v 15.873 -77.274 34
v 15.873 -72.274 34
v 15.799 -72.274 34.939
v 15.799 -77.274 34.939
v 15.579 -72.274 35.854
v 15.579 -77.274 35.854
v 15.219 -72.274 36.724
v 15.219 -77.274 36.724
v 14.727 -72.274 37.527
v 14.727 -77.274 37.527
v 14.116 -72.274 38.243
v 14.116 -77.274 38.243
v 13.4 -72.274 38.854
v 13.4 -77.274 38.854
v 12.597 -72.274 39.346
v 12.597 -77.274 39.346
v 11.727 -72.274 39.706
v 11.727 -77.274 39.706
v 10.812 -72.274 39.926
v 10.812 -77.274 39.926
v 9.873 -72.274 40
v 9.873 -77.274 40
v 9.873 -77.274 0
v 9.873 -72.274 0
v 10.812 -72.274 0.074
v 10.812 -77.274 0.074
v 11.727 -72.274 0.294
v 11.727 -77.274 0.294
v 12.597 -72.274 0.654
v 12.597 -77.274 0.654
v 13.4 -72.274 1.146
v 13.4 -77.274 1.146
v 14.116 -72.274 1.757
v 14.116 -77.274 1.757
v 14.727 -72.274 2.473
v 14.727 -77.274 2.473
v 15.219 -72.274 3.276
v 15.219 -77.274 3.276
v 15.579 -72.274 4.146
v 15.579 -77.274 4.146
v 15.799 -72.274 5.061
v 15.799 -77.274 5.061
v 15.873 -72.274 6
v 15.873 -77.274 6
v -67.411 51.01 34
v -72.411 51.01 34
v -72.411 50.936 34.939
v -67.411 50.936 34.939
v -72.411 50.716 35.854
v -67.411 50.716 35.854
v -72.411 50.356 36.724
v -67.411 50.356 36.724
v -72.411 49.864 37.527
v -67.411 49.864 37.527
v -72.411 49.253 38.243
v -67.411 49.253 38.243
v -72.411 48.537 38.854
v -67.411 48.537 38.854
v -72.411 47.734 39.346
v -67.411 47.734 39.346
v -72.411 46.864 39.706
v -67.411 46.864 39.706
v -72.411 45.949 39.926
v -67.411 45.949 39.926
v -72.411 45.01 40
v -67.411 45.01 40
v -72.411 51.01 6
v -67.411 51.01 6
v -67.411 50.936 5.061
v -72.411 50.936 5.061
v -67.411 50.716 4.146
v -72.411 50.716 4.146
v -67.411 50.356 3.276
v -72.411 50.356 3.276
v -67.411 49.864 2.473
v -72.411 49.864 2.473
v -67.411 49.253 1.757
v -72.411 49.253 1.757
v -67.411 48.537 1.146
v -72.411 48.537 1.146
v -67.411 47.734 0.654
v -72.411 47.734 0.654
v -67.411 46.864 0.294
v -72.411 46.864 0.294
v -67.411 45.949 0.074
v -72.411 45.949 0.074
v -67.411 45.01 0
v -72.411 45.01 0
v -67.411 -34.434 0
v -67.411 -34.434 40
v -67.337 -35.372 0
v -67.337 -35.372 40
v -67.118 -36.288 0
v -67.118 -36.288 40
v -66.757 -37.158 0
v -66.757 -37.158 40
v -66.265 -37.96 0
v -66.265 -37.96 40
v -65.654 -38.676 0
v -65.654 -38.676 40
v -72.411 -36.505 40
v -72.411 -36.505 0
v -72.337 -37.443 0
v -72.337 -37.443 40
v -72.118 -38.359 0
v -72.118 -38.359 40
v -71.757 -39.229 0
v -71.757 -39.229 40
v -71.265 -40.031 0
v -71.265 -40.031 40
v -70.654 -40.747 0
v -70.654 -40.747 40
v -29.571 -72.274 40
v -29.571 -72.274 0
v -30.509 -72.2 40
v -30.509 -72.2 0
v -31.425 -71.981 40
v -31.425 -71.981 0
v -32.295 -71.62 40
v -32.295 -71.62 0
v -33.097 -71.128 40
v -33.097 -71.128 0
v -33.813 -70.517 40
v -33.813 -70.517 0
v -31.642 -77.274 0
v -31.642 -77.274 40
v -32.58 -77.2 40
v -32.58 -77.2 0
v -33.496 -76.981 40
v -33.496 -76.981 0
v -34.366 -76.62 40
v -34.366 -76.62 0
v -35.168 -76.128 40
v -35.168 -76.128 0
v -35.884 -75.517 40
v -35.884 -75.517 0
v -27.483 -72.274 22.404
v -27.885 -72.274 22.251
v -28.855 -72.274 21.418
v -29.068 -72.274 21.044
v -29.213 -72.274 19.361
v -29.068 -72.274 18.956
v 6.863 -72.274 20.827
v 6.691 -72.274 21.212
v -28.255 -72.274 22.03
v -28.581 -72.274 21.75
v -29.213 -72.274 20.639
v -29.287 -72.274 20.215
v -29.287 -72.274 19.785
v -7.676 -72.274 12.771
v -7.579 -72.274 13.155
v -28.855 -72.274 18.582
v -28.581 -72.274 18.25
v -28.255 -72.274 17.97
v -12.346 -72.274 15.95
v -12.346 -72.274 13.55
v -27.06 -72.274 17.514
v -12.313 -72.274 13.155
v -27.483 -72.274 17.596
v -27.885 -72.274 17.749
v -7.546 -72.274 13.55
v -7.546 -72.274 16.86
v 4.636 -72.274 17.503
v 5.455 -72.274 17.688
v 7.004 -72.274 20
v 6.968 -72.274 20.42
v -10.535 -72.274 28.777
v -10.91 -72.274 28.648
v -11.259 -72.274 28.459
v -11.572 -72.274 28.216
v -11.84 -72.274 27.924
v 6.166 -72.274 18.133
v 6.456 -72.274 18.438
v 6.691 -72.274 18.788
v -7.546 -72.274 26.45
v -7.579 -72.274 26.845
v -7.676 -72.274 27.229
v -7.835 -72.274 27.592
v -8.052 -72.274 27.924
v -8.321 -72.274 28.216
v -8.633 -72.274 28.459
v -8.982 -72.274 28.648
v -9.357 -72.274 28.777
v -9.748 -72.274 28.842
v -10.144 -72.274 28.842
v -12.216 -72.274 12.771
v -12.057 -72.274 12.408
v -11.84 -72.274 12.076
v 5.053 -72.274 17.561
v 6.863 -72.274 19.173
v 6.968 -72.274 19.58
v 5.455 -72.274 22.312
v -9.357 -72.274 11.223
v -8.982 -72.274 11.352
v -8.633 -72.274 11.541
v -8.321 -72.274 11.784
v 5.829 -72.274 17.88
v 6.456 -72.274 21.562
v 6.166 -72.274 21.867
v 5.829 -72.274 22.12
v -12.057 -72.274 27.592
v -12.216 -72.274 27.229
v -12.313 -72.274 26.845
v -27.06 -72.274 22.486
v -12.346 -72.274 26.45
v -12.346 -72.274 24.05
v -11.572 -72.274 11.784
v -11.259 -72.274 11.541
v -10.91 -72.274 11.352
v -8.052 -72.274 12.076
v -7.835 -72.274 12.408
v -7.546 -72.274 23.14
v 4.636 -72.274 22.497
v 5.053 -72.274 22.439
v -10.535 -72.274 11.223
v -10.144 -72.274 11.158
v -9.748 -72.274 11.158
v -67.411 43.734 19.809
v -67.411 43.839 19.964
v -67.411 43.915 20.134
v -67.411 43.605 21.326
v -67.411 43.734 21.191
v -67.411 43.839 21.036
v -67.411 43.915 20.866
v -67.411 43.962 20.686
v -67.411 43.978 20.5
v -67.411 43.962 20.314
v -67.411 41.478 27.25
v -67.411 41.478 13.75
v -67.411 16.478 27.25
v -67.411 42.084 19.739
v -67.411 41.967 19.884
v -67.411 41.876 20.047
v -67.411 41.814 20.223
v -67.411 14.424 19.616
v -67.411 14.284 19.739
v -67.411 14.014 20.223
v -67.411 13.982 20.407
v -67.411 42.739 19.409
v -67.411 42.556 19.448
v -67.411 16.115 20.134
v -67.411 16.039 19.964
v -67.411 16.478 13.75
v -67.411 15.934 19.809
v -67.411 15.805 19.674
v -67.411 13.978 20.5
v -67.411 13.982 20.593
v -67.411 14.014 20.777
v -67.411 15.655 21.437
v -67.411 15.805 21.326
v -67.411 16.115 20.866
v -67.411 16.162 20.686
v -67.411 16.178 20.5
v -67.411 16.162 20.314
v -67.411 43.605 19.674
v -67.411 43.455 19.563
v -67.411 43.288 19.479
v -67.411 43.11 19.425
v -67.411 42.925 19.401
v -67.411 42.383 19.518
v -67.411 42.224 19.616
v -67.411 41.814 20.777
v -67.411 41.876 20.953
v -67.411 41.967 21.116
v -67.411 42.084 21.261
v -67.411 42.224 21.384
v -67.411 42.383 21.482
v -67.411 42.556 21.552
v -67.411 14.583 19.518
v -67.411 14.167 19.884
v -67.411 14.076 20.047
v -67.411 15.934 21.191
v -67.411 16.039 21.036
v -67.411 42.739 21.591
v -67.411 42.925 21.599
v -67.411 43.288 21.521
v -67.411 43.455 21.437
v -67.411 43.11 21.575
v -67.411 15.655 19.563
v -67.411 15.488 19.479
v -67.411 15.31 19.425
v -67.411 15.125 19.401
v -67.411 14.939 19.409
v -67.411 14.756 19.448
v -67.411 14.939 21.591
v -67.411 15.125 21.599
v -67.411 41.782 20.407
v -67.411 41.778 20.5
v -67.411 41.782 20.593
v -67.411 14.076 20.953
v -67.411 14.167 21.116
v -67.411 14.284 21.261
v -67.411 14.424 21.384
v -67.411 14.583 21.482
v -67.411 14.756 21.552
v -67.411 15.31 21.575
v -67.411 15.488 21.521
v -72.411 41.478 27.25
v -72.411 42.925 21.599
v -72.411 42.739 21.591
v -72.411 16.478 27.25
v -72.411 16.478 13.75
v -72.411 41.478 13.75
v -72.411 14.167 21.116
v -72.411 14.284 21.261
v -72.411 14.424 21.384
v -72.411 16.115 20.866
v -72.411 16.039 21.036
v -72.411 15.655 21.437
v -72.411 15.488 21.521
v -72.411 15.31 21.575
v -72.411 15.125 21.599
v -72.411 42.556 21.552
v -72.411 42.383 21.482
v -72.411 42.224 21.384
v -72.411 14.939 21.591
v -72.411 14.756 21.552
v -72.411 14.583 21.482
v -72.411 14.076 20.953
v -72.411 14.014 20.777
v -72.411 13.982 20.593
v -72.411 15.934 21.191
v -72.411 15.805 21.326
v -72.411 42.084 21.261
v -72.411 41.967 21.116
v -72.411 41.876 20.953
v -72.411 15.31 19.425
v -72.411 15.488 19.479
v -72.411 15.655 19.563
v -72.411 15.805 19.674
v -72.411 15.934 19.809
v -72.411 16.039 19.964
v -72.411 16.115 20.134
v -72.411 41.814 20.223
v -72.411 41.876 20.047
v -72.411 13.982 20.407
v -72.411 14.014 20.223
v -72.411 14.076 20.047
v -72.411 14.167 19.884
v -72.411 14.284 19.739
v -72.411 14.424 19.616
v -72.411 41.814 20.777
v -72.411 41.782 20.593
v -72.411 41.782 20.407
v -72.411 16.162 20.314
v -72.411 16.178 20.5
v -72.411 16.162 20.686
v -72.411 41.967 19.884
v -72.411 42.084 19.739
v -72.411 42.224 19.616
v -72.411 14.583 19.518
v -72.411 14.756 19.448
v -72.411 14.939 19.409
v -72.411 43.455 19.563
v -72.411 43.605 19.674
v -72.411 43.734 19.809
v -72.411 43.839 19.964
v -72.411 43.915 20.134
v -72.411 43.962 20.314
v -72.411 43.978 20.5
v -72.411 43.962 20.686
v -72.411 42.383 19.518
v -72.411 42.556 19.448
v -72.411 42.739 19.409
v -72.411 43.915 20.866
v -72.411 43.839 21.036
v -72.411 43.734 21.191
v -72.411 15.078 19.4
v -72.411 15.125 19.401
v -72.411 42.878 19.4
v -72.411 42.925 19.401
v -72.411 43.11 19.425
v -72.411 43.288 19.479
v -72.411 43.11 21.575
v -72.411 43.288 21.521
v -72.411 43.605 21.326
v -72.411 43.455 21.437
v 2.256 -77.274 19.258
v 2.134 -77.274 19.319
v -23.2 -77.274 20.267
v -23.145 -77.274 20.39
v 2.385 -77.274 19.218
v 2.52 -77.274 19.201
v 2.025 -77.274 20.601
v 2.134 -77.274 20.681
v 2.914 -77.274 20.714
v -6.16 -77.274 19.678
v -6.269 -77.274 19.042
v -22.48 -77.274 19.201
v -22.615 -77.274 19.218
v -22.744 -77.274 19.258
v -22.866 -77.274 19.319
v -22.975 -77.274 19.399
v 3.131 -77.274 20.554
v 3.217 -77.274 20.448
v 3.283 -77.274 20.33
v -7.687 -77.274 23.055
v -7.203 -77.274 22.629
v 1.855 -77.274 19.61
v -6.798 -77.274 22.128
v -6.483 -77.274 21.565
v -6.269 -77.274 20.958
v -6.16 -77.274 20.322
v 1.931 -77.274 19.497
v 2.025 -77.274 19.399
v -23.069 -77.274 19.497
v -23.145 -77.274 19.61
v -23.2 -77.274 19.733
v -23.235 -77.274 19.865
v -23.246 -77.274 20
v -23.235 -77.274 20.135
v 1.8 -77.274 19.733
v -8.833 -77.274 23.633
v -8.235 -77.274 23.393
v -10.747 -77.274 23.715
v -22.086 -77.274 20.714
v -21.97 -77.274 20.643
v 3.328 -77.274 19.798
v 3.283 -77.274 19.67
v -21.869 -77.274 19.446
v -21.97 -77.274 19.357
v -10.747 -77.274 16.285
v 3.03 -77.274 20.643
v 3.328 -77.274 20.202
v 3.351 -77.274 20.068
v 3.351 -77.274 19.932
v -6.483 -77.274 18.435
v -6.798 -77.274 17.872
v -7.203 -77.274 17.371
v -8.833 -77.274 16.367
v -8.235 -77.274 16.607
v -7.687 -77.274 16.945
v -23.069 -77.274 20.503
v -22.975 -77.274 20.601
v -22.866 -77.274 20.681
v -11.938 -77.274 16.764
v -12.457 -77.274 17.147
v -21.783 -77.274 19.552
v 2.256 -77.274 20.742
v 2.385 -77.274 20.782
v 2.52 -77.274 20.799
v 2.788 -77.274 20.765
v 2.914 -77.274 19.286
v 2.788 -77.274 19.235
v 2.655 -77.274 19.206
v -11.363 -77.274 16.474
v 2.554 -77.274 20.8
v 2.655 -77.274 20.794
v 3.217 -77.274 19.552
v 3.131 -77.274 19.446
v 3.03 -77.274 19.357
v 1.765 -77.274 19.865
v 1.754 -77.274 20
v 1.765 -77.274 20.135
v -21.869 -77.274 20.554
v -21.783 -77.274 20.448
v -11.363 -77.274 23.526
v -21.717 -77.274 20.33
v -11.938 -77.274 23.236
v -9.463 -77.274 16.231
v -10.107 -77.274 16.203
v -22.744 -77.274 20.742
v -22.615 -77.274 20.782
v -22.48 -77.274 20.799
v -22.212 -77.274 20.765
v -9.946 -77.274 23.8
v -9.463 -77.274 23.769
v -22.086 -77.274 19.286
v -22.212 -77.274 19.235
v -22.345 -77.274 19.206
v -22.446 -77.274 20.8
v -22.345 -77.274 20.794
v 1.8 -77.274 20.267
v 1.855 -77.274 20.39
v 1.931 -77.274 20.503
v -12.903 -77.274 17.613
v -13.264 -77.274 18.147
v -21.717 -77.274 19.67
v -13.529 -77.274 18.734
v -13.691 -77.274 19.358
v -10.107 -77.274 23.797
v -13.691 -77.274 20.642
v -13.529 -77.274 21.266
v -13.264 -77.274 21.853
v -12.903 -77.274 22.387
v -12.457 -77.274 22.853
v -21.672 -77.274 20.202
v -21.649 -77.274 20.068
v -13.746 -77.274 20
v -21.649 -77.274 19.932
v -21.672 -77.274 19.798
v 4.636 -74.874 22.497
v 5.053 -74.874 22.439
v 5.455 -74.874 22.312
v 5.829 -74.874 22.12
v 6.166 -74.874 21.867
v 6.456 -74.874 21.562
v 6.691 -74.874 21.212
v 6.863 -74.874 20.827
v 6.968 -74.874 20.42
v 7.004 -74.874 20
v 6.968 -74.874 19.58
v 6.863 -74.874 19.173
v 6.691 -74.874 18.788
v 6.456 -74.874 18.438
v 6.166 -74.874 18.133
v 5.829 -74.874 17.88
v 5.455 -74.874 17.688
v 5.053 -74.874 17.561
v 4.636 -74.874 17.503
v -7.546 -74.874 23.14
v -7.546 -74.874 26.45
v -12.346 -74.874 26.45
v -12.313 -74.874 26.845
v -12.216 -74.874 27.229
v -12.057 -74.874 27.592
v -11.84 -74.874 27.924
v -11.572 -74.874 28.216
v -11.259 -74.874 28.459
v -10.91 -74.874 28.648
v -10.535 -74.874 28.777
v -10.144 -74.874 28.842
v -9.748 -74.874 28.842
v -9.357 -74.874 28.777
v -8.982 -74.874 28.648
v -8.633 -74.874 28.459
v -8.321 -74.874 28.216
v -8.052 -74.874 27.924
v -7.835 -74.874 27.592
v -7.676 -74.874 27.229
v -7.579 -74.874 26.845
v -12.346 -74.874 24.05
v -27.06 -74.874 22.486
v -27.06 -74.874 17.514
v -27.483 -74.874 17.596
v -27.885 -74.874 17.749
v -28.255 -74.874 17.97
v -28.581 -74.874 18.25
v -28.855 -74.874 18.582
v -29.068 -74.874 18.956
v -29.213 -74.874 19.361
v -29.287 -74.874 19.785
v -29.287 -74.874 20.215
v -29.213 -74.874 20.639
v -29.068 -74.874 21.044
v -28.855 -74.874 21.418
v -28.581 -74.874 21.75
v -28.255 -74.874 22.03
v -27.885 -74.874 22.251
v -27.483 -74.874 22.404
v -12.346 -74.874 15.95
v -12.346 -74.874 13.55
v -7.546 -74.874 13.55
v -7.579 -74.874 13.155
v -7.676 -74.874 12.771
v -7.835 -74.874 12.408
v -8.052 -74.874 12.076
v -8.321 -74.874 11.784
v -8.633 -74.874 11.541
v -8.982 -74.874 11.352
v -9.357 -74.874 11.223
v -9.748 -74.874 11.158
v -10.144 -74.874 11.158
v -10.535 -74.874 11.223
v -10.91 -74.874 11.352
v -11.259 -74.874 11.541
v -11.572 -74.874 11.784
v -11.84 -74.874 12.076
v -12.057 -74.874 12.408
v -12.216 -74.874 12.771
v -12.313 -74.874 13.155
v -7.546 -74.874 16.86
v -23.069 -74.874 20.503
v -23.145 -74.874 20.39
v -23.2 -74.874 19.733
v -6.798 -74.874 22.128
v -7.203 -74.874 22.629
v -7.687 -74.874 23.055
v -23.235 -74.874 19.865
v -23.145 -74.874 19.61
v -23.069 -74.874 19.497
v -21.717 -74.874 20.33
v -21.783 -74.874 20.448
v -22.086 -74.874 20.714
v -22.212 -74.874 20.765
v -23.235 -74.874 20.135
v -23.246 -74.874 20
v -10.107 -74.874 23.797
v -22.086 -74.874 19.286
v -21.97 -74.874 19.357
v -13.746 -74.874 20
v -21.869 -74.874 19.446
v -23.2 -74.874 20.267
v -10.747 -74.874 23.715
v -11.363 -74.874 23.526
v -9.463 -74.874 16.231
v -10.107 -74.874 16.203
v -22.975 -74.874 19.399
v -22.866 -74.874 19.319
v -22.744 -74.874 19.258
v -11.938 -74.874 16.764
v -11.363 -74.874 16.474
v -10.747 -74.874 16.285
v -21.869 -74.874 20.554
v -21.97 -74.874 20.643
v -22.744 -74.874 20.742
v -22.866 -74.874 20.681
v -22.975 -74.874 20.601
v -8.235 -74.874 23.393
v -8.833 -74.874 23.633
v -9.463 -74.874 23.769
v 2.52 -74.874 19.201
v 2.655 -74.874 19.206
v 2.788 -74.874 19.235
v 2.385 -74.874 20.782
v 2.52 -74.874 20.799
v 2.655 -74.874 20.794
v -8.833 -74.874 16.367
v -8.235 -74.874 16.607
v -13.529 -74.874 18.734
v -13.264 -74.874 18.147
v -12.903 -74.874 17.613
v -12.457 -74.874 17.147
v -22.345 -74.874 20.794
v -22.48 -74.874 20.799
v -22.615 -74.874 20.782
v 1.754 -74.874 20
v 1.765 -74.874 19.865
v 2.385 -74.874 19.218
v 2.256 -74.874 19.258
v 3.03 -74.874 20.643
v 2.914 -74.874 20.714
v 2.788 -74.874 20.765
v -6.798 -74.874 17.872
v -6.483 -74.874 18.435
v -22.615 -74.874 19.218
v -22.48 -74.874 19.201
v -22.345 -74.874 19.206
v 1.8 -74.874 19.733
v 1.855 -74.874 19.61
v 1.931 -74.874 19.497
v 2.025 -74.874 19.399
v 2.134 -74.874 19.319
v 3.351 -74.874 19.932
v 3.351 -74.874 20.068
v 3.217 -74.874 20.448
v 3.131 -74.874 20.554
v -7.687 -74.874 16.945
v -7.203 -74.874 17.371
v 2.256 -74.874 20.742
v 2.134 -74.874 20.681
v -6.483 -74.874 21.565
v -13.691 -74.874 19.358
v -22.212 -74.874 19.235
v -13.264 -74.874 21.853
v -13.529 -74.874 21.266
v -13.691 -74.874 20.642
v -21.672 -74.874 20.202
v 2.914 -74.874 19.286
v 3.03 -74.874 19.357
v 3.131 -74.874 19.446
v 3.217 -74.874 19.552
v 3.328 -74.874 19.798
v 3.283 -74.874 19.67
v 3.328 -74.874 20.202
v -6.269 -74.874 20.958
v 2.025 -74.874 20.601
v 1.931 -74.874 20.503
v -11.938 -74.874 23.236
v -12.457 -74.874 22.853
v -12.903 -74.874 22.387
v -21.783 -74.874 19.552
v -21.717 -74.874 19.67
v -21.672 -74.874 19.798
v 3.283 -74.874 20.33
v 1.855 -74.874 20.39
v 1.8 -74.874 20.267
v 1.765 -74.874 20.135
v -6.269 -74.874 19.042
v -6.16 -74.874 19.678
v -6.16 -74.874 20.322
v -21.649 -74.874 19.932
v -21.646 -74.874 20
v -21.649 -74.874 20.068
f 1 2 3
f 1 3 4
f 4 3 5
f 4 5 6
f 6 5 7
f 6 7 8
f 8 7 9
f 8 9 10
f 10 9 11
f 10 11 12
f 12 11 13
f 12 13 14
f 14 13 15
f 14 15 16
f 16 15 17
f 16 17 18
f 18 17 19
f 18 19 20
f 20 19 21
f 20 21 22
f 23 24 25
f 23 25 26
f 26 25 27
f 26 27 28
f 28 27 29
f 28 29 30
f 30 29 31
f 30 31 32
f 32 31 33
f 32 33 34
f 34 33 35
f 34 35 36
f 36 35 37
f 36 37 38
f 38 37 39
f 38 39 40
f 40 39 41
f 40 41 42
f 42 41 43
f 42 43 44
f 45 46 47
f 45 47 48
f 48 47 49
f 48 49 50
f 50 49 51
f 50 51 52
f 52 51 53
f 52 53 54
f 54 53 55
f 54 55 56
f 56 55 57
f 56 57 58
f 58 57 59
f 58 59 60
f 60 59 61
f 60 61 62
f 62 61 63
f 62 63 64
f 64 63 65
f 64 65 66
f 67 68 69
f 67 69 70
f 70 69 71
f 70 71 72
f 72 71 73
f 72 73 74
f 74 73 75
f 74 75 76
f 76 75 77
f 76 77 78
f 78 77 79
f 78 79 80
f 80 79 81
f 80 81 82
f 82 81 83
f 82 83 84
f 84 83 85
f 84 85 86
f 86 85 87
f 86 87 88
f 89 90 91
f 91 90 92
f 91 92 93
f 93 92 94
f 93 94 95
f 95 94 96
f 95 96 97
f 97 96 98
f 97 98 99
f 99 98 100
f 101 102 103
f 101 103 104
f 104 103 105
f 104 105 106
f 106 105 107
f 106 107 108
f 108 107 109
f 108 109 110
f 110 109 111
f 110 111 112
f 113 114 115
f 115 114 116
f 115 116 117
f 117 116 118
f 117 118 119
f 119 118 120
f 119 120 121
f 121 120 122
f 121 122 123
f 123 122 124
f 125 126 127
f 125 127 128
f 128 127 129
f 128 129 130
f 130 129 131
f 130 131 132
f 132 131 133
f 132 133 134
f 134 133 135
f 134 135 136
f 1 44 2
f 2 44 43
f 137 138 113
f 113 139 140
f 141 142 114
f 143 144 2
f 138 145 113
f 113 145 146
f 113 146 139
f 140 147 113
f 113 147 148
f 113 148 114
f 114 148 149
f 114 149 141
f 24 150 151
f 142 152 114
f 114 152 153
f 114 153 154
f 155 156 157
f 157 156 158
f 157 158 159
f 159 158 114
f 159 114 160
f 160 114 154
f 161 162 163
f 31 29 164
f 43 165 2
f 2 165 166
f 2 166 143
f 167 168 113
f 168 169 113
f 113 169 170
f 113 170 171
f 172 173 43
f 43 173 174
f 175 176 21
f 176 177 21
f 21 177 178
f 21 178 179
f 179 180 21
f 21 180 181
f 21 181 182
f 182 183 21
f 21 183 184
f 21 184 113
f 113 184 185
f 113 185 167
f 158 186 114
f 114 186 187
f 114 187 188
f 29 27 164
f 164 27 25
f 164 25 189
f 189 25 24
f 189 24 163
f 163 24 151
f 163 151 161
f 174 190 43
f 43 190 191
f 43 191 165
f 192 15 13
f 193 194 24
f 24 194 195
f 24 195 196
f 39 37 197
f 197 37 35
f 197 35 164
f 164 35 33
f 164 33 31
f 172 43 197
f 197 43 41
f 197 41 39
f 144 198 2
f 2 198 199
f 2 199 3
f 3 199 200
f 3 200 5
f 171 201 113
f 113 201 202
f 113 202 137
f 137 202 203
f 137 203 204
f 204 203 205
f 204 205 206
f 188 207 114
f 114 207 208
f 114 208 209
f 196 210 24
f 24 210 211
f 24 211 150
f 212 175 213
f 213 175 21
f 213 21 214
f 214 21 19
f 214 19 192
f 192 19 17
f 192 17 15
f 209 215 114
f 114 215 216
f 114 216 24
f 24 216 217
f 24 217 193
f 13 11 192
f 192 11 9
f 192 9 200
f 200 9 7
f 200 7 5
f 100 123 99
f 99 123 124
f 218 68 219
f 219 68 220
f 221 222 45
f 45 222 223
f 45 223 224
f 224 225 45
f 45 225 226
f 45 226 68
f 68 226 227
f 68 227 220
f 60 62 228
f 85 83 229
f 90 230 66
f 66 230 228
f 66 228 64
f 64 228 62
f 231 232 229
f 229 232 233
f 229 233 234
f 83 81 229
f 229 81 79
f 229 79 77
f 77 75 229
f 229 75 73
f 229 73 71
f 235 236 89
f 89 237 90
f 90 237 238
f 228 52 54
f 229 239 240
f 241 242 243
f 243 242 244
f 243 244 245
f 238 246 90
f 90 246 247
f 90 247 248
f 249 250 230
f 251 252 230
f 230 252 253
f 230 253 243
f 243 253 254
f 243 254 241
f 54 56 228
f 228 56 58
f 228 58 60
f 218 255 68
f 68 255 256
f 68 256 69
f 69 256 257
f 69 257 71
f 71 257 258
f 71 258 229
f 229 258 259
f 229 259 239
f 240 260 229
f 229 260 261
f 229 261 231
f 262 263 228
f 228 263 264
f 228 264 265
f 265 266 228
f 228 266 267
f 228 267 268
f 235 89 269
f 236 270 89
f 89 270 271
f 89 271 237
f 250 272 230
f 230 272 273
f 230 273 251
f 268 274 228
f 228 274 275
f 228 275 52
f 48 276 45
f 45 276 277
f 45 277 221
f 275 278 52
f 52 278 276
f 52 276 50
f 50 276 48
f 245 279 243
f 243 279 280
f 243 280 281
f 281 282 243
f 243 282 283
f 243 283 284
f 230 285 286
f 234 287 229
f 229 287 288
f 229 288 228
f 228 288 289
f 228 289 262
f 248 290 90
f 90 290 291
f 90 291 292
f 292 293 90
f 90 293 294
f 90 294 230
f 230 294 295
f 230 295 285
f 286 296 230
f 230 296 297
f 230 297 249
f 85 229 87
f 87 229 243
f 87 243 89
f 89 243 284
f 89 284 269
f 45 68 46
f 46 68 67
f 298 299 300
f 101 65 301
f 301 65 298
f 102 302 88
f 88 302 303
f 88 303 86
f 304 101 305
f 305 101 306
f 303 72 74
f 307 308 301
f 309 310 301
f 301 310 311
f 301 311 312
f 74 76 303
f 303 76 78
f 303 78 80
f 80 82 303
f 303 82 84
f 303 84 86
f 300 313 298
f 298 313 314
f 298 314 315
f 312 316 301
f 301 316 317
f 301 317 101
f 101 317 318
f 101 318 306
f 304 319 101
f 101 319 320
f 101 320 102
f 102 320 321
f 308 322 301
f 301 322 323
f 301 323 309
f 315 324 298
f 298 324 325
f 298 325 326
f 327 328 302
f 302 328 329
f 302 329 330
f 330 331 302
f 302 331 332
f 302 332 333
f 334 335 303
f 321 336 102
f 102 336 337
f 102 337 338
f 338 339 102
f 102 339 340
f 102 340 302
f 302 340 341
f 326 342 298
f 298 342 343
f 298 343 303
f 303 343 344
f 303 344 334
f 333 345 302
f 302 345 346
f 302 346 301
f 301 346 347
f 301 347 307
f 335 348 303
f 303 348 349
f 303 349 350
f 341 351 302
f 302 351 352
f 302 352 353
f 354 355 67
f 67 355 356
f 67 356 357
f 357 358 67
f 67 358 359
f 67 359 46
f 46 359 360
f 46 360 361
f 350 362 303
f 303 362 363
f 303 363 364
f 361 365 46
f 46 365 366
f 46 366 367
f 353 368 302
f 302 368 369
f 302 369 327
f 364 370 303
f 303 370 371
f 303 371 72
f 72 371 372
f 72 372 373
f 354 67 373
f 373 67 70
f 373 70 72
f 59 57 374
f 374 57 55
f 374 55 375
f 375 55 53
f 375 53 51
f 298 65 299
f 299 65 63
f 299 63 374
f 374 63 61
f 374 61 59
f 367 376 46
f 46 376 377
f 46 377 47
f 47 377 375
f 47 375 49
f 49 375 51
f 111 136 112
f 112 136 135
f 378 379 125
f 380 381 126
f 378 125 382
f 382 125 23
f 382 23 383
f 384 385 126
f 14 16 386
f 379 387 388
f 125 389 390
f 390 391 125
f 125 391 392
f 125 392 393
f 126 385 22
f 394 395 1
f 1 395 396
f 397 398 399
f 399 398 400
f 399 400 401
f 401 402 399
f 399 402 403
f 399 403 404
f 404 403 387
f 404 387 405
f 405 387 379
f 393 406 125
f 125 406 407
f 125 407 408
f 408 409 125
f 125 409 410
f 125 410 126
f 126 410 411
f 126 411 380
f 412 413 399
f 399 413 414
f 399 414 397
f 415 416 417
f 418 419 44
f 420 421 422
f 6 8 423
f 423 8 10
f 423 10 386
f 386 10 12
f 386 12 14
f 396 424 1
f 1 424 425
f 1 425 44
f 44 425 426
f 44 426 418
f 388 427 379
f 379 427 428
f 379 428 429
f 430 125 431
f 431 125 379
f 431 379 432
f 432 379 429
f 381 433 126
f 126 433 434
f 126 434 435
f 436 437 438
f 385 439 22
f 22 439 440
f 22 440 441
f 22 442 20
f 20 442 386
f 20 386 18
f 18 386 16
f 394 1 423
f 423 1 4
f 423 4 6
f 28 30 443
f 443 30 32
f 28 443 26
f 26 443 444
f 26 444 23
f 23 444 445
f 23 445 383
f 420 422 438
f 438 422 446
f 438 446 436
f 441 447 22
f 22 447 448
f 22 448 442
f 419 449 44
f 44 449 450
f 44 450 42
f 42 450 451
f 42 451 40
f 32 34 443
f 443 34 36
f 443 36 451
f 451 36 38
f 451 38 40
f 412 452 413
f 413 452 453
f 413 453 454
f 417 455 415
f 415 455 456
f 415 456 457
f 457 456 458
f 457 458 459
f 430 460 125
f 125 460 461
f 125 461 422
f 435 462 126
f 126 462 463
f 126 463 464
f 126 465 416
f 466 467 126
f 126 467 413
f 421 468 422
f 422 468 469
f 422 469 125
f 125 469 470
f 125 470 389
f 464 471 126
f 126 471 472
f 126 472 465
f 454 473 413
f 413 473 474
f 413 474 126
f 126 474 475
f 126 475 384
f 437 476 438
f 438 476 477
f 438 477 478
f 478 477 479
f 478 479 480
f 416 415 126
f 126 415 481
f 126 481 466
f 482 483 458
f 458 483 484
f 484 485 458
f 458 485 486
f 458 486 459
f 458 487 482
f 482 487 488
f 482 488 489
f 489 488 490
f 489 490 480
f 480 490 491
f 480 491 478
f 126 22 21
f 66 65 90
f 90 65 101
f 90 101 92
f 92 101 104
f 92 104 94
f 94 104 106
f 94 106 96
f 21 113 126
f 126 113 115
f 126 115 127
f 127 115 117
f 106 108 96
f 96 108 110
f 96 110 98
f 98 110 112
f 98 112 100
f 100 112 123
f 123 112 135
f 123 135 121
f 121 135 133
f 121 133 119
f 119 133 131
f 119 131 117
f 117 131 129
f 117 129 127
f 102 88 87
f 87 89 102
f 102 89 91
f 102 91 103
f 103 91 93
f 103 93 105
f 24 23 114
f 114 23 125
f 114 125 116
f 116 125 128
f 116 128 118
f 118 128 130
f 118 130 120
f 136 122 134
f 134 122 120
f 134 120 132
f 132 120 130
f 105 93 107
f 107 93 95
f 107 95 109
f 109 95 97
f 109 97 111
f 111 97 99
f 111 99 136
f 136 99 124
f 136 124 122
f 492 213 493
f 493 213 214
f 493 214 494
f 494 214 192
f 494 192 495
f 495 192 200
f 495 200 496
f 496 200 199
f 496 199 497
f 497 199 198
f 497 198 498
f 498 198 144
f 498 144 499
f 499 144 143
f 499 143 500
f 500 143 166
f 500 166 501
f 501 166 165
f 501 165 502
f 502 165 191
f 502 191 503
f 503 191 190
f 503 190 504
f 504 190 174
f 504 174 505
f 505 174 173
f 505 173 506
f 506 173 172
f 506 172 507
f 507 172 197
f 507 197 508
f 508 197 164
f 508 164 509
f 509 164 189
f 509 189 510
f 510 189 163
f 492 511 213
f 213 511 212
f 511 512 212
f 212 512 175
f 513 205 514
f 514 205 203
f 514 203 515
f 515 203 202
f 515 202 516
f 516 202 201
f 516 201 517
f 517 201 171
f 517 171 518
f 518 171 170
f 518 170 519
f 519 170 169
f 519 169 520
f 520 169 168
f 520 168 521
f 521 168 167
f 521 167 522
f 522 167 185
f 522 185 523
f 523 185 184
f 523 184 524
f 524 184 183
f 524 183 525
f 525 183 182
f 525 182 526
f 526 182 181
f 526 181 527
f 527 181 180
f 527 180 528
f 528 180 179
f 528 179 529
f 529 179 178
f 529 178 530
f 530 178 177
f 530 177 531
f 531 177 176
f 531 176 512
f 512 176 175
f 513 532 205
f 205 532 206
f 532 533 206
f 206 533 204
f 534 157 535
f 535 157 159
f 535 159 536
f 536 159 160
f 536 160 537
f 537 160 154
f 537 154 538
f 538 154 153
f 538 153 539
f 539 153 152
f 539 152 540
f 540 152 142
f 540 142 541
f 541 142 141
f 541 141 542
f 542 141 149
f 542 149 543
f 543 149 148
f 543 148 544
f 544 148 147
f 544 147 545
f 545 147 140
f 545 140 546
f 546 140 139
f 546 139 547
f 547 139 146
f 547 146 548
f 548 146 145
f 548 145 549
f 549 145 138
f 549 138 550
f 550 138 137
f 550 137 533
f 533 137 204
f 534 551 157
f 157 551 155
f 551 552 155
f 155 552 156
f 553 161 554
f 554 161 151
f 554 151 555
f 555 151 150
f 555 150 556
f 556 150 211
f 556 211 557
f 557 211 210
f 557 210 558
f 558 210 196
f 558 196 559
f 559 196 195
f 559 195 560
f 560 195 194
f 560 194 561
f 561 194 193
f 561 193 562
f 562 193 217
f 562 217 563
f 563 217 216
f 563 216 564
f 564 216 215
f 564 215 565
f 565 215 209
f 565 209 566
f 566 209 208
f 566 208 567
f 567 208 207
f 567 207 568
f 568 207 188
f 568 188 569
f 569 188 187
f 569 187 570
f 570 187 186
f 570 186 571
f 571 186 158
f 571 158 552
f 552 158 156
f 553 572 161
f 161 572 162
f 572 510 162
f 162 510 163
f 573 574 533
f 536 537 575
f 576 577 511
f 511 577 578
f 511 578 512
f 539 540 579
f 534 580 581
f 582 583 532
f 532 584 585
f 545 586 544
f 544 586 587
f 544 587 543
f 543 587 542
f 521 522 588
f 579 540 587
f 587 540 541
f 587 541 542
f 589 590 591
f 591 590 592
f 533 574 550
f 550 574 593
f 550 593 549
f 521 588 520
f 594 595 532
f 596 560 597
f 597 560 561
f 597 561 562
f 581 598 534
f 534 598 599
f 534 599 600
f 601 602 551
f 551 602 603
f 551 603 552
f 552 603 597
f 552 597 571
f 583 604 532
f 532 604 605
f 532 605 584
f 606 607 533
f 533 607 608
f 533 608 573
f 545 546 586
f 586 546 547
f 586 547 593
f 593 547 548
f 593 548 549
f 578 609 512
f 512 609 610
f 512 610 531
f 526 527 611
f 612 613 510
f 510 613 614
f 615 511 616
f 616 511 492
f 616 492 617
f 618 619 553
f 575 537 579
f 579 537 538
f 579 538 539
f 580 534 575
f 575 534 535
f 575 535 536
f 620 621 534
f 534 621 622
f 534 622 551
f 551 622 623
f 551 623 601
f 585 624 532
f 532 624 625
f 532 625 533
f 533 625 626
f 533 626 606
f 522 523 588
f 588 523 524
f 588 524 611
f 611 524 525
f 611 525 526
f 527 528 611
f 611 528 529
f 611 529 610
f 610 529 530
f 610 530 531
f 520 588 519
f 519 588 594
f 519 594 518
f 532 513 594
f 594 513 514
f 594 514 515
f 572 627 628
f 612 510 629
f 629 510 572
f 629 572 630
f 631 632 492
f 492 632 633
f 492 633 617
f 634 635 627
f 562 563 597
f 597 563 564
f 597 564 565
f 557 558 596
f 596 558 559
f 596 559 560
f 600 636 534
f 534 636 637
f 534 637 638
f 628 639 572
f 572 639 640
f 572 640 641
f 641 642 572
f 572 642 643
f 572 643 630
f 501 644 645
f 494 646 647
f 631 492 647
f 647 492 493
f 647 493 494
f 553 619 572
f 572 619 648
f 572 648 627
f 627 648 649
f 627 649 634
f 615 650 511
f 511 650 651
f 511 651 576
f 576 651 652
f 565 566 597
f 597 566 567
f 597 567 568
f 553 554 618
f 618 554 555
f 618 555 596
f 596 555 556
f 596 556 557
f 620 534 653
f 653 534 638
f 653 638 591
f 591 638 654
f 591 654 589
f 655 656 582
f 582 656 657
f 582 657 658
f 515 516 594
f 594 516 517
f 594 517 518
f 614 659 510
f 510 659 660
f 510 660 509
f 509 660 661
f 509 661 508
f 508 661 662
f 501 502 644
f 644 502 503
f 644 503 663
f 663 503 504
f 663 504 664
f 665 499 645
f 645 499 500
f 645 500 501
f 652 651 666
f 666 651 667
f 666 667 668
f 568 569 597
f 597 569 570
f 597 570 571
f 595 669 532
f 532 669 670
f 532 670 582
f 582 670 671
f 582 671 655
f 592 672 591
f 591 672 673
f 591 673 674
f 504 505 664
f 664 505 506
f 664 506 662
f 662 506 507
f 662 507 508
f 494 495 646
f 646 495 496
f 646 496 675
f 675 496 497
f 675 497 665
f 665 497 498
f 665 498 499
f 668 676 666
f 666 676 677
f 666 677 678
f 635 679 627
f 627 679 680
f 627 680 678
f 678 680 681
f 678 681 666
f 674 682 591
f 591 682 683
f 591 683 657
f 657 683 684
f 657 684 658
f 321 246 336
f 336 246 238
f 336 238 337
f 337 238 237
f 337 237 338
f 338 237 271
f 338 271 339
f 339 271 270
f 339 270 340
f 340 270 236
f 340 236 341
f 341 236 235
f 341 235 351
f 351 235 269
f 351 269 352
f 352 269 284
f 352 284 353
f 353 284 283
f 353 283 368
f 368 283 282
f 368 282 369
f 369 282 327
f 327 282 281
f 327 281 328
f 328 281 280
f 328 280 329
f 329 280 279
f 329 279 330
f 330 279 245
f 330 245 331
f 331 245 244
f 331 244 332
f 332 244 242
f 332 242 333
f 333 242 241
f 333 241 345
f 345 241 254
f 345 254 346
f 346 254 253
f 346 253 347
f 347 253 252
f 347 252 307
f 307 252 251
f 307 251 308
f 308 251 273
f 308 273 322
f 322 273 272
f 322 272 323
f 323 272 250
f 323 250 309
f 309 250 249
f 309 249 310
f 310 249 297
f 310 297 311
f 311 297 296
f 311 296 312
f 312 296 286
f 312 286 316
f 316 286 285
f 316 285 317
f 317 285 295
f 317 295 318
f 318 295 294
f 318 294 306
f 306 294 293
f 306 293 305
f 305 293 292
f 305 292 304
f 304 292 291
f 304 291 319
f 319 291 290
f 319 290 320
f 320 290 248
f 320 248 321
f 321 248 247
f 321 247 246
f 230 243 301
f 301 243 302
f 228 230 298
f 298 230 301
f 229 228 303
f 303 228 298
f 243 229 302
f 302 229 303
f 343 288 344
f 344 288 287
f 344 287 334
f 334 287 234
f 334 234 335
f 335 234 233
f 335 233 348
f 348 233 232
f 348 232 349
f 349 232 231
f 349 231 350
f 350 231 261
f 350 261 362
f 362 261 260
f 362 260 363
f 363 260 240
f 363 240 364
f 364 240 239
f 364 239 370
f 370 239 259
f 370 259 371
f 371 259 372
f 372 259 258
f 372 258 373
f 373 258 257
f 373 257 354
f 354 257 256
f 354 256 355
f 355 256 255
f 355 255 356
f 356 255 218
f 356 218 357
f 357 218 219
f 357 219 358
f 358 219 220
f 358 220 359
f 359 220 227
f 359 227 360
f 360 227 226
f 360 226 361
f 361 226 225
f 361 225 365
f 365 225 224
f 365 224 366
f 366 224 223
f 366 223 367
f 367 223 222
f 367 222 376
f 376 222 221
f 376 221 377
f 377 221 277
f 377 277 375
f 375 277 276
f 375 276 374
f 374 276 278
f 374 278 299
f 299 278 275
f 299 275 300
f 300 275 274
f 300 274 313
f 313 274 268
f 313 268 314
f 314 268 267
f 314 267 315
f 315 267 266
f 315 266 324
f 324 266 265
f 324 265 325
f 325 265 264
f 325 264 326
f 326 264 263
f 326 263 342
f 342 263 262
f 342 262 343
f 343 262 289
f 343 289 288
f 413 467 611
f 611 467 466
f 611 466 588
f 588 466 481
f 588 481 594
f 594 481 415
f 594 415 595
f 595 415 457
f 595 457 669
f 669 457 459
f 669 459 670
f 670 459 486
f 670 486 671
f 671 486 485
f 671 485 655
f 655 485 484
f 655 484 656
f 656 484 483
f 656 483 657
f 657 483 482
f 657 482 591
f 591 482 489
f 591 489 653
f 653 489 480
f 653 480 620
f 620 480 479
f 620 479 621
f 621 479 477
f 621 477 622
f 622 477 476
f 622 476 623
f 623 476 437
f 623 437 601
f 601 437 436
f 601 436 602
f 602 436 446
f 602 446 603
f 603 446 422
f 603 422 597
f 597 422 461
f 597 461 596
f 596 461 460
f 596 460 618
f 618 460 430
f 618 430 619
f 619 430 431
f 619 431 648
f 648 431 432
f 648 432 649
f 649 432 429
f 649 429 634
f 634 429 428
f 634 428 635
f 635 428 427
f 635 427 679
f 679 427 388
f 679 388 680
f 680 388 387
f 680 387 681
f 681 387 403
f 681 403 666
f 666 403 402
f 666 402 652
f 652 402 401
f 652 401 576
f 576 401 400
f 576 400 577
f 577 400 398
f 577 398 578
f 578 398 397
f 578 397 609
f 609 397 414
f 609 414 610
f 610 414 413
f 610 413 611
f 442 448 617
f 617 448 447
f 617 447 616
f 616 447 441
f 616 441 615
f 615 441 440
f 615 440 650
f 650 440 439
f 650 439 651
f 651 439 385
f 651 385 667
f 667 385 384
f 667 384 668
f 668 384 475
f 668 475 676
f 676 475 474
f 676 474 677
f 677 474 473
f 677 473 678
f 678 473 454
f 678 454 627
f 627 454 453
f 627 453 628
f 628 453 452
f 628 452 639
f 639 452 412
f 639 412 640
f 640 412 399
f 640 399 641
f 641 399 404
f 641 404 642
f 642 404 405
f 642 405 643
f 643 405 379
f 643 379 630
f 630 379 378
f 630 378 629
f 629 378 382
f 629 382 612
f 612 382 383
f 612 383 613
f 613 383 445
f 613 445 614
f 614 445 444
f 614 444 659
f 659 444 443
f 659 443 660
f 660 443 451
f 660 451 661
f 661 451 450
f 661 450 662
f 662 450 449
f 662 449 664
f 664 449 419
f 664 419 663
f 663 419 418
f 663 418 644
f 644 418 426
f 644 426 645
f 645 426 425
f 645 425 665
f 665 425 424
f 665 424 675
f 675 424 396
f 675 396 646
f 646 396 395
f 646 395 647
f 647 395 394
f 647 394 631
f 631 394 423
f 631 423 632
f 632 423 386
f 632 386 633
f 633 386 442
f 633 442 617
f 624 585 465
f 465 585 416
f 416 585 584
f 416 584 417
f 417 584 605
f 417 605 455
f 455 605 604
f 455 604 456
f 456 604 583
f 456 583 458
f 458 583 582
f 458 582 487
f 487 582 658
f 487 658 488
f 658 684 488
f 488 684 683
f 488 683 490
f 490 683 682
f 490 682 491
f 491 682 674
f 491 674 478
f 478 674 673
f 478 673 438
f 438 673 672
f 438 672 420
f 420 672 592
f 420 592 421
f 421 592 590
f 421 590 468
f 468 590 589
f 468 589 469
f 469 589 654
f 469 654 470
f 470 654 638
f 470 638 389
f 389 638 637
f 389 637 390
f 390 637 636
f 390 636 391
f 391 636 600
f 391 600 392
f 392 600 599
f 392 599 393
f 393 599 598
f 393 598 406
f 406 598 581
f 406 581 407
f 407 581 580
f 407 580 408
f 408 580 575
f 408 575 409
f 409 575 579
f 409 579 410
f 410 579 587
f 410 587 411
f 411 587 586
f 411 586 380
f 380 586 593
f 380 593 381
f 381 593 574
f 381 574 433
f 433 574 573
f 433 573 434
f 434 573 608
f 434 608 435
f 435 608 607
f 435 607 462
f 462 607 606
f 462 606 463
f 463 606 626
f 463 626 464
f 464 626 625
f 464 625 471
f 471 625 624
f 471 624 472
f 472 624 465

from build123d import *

# Parameters (mm, degrees)
EXTRUDE_1_DEPTH     = 40
FILLET_7_R          = 6
CUT_EXTRUDE_4_DEPTH = 2.6
SKETCH_7_R          = 1.1
SKETCH_7_W          = 13.5
SKETCH_7_H          = 25
CUT_EXTRUDE_5_DEPTH = 10
FILLET_8_R          = 6
FILLET_9_R          = 6
FILLET_10_R         = 6
FILLET_11_R         = 6
FILLET_12_R         = 6
FILLET_13_R         = 6
FILLET_14_R         = 6
SKETCH_10_R         = 3.8
SKETCH_10_R_2       = 0.8
CUT_EXTRUDE_7_DEPTH = 10


with BuildPart() as part:
    # 草图1 → 凸台-拉伸1 (new body)
    with BuildSketch(Plane.XY):
        Polygon((15.872975722, -72.274332462), (-32.055956466, -72.274332462), (-67.411295525, -36.918993403), (-67.411295525, 51.009938785), (-72.411295525, 51.009938785), (-72.411295525, -38.990061215), (-34.127024278, -77.274332462), (15.872975722, -77.274332462), align=None)
    extrude(amount=EXTRUDE_1_DEPTH)

    # 圆角7
    fillet_7_edges = [part.edges().sort_by_distance(p)[0] for p in [
        (-34.127024278, -77.274332462, 20),
    ]]
    fillet(fillet_7_edges, radius=FILLET_7_R)

    # 草图6 → 切除-拉伸4 (cut)
    with BuildSketch(Plane(origin=(0, -72.274332462, 0), x_dir=(1, 0, 0), z_dir=(0, 1, 0))):
        with BuildLine():
            Line((4.635801051, -17.503483429), (-7.546126997, -16.859731248))
            Line((-7.546126997, -16.859731248), (-7.546126997, -13.55))
            ThreePointArc((-7.546126997, -13.55), (-9.946126997, -11.15), (-12.346126997, -13.55))
            Line((-12.346126997, -13.55), (-12.346126997, -15.950319654))
            Line((-12.346126997, -15.950319654), (-27.060314717, -17.51399822))
            ThreePointArc((-27.060314717, -17.51399822), (-29.296126997, -20), (-27.060314717, -22.48600178))
            Line((-27.060314717, -22.48600178), (-12.346126997, -24.049680346))
            Line((-12.346126997, -24.049680346), (-12.346126997, -26.45))
            ThreePointArc((-12.346126997, -26.45), (-9.946126997, -28.85), (-7.546126997, -26.45))
            Line((-7.546126997, -26.45), (-7.546126997, -23.140268752))
            Line((-7.546126997, -23.140268752), (4.635801051, -22.496516571))
            ThreePointArc((4.635801051, -22.496516571), (7.003873003, -20), (4.635801051, -17.503483429))
        make_face()
    extrude(amount=-CUT_EXTRUDE_4_DEPTH, mode=Mode.SUBTRACT)

    # 草图7 → 切除-拉伸5 (cut)
    with BuildSketch(Plane(origin=(-67.411295525, -6.360766816, 0), x_dir=(0, 0, -1), z_dir=(-1, 0, 0))):
        with Locations((-20.5, -49.239005853)):
            Circle(SKETCH_7_R)
        with Locations((-20.5, -21.439005853)):
            Circle(SKETCH_7_R)
        with Locations((-20.5, -35.339005853)):
            Rectangle(SKETCH_7_W, SKETCH_7_H)
    extrude(amount=CUT_EXTRUDE_5_DEPTH, mode=Mode.SUBTRACT)

    # 圆角8
    fillet_8_edges = [part.edges().sort_by_distance(p)[0] for p in [
        (-32.055956466, -72.274332462, 20),
    ]]
    fillet(fillet_8_edges, radius=FILLET_8_R)

    # 圆角9
    fillet_9_edges = [part.edges().sort_by_distance(p)[0] for p in [
        (-72.411295525, -38.990061215, 20),
    ]]
    fillet(fillet_9_edges, radius=FILLET_9_R)

    # 圆角10
    fillet_10_edges = [part.edges().sort_by_distance(p)[0] for p in [
        (-67.411295525, -36.918993403, 20),
    ]]
    fillet(fillet_10_edges, radius=FILLET_10_R)

    # 圆角11
    fillet_11_edges = [part.edges().sort_by_distance(p)[0] for p in [
        (-69.911295525, 51.009938785, 0),
    ]]
    fillet(fillet_11_edges, radius=FILLET_11_R)

    # 圆角12
    fillet_12_edges = [part.edges().sort_by_distance(p)[0] for p in [
        (-69.911295525, 51.009938785, 40),
    ]]
    fillet(fillet_12_edges, radius=FILLET_12_R)

    # 圆角13
    fillet_13_edges = [part.edges().sort_by_distance(p)[0] for p in [
        (15.872975722, -74.774332462, 0),
    ]]
    fillet(fillet_13_edges, radius=FILLET_13_R)

    # 圆角14
    fillet_14_edges = [part.edges().sort_by_distance(p)[0] for p in [
        (15.872975722, -74.774332462, 40),
    ]]
    fillet(fillet_14_edges, radius=FILLET_14_R)

    # 草图10 → 切除-拉伸7 (cut)
    with BuildSketch(Plane(origin=(0, -74.874332462, 0), x_dir=(1, 0, 0), z_dir=(0, 1, 0))):
        with Locations(Location((-9.946126997, -20, 0), (0, 0, 180))):
            Circle(SKETCH_10_R)
        with Locations(Location((2.553873003, -20, 0), (0, 0, 180))):
            Circle(SKETCH_10_R_2)
        with Locations(Location((-22.446126997, -20, 0), (0, 0, 270))):
            Circle(SKETCH_10_R_2)
    extrude(amount=-CUT_EXTRUDE_7_DEPTH, mode=Mode.SUBTRACT)


solid = part.part
